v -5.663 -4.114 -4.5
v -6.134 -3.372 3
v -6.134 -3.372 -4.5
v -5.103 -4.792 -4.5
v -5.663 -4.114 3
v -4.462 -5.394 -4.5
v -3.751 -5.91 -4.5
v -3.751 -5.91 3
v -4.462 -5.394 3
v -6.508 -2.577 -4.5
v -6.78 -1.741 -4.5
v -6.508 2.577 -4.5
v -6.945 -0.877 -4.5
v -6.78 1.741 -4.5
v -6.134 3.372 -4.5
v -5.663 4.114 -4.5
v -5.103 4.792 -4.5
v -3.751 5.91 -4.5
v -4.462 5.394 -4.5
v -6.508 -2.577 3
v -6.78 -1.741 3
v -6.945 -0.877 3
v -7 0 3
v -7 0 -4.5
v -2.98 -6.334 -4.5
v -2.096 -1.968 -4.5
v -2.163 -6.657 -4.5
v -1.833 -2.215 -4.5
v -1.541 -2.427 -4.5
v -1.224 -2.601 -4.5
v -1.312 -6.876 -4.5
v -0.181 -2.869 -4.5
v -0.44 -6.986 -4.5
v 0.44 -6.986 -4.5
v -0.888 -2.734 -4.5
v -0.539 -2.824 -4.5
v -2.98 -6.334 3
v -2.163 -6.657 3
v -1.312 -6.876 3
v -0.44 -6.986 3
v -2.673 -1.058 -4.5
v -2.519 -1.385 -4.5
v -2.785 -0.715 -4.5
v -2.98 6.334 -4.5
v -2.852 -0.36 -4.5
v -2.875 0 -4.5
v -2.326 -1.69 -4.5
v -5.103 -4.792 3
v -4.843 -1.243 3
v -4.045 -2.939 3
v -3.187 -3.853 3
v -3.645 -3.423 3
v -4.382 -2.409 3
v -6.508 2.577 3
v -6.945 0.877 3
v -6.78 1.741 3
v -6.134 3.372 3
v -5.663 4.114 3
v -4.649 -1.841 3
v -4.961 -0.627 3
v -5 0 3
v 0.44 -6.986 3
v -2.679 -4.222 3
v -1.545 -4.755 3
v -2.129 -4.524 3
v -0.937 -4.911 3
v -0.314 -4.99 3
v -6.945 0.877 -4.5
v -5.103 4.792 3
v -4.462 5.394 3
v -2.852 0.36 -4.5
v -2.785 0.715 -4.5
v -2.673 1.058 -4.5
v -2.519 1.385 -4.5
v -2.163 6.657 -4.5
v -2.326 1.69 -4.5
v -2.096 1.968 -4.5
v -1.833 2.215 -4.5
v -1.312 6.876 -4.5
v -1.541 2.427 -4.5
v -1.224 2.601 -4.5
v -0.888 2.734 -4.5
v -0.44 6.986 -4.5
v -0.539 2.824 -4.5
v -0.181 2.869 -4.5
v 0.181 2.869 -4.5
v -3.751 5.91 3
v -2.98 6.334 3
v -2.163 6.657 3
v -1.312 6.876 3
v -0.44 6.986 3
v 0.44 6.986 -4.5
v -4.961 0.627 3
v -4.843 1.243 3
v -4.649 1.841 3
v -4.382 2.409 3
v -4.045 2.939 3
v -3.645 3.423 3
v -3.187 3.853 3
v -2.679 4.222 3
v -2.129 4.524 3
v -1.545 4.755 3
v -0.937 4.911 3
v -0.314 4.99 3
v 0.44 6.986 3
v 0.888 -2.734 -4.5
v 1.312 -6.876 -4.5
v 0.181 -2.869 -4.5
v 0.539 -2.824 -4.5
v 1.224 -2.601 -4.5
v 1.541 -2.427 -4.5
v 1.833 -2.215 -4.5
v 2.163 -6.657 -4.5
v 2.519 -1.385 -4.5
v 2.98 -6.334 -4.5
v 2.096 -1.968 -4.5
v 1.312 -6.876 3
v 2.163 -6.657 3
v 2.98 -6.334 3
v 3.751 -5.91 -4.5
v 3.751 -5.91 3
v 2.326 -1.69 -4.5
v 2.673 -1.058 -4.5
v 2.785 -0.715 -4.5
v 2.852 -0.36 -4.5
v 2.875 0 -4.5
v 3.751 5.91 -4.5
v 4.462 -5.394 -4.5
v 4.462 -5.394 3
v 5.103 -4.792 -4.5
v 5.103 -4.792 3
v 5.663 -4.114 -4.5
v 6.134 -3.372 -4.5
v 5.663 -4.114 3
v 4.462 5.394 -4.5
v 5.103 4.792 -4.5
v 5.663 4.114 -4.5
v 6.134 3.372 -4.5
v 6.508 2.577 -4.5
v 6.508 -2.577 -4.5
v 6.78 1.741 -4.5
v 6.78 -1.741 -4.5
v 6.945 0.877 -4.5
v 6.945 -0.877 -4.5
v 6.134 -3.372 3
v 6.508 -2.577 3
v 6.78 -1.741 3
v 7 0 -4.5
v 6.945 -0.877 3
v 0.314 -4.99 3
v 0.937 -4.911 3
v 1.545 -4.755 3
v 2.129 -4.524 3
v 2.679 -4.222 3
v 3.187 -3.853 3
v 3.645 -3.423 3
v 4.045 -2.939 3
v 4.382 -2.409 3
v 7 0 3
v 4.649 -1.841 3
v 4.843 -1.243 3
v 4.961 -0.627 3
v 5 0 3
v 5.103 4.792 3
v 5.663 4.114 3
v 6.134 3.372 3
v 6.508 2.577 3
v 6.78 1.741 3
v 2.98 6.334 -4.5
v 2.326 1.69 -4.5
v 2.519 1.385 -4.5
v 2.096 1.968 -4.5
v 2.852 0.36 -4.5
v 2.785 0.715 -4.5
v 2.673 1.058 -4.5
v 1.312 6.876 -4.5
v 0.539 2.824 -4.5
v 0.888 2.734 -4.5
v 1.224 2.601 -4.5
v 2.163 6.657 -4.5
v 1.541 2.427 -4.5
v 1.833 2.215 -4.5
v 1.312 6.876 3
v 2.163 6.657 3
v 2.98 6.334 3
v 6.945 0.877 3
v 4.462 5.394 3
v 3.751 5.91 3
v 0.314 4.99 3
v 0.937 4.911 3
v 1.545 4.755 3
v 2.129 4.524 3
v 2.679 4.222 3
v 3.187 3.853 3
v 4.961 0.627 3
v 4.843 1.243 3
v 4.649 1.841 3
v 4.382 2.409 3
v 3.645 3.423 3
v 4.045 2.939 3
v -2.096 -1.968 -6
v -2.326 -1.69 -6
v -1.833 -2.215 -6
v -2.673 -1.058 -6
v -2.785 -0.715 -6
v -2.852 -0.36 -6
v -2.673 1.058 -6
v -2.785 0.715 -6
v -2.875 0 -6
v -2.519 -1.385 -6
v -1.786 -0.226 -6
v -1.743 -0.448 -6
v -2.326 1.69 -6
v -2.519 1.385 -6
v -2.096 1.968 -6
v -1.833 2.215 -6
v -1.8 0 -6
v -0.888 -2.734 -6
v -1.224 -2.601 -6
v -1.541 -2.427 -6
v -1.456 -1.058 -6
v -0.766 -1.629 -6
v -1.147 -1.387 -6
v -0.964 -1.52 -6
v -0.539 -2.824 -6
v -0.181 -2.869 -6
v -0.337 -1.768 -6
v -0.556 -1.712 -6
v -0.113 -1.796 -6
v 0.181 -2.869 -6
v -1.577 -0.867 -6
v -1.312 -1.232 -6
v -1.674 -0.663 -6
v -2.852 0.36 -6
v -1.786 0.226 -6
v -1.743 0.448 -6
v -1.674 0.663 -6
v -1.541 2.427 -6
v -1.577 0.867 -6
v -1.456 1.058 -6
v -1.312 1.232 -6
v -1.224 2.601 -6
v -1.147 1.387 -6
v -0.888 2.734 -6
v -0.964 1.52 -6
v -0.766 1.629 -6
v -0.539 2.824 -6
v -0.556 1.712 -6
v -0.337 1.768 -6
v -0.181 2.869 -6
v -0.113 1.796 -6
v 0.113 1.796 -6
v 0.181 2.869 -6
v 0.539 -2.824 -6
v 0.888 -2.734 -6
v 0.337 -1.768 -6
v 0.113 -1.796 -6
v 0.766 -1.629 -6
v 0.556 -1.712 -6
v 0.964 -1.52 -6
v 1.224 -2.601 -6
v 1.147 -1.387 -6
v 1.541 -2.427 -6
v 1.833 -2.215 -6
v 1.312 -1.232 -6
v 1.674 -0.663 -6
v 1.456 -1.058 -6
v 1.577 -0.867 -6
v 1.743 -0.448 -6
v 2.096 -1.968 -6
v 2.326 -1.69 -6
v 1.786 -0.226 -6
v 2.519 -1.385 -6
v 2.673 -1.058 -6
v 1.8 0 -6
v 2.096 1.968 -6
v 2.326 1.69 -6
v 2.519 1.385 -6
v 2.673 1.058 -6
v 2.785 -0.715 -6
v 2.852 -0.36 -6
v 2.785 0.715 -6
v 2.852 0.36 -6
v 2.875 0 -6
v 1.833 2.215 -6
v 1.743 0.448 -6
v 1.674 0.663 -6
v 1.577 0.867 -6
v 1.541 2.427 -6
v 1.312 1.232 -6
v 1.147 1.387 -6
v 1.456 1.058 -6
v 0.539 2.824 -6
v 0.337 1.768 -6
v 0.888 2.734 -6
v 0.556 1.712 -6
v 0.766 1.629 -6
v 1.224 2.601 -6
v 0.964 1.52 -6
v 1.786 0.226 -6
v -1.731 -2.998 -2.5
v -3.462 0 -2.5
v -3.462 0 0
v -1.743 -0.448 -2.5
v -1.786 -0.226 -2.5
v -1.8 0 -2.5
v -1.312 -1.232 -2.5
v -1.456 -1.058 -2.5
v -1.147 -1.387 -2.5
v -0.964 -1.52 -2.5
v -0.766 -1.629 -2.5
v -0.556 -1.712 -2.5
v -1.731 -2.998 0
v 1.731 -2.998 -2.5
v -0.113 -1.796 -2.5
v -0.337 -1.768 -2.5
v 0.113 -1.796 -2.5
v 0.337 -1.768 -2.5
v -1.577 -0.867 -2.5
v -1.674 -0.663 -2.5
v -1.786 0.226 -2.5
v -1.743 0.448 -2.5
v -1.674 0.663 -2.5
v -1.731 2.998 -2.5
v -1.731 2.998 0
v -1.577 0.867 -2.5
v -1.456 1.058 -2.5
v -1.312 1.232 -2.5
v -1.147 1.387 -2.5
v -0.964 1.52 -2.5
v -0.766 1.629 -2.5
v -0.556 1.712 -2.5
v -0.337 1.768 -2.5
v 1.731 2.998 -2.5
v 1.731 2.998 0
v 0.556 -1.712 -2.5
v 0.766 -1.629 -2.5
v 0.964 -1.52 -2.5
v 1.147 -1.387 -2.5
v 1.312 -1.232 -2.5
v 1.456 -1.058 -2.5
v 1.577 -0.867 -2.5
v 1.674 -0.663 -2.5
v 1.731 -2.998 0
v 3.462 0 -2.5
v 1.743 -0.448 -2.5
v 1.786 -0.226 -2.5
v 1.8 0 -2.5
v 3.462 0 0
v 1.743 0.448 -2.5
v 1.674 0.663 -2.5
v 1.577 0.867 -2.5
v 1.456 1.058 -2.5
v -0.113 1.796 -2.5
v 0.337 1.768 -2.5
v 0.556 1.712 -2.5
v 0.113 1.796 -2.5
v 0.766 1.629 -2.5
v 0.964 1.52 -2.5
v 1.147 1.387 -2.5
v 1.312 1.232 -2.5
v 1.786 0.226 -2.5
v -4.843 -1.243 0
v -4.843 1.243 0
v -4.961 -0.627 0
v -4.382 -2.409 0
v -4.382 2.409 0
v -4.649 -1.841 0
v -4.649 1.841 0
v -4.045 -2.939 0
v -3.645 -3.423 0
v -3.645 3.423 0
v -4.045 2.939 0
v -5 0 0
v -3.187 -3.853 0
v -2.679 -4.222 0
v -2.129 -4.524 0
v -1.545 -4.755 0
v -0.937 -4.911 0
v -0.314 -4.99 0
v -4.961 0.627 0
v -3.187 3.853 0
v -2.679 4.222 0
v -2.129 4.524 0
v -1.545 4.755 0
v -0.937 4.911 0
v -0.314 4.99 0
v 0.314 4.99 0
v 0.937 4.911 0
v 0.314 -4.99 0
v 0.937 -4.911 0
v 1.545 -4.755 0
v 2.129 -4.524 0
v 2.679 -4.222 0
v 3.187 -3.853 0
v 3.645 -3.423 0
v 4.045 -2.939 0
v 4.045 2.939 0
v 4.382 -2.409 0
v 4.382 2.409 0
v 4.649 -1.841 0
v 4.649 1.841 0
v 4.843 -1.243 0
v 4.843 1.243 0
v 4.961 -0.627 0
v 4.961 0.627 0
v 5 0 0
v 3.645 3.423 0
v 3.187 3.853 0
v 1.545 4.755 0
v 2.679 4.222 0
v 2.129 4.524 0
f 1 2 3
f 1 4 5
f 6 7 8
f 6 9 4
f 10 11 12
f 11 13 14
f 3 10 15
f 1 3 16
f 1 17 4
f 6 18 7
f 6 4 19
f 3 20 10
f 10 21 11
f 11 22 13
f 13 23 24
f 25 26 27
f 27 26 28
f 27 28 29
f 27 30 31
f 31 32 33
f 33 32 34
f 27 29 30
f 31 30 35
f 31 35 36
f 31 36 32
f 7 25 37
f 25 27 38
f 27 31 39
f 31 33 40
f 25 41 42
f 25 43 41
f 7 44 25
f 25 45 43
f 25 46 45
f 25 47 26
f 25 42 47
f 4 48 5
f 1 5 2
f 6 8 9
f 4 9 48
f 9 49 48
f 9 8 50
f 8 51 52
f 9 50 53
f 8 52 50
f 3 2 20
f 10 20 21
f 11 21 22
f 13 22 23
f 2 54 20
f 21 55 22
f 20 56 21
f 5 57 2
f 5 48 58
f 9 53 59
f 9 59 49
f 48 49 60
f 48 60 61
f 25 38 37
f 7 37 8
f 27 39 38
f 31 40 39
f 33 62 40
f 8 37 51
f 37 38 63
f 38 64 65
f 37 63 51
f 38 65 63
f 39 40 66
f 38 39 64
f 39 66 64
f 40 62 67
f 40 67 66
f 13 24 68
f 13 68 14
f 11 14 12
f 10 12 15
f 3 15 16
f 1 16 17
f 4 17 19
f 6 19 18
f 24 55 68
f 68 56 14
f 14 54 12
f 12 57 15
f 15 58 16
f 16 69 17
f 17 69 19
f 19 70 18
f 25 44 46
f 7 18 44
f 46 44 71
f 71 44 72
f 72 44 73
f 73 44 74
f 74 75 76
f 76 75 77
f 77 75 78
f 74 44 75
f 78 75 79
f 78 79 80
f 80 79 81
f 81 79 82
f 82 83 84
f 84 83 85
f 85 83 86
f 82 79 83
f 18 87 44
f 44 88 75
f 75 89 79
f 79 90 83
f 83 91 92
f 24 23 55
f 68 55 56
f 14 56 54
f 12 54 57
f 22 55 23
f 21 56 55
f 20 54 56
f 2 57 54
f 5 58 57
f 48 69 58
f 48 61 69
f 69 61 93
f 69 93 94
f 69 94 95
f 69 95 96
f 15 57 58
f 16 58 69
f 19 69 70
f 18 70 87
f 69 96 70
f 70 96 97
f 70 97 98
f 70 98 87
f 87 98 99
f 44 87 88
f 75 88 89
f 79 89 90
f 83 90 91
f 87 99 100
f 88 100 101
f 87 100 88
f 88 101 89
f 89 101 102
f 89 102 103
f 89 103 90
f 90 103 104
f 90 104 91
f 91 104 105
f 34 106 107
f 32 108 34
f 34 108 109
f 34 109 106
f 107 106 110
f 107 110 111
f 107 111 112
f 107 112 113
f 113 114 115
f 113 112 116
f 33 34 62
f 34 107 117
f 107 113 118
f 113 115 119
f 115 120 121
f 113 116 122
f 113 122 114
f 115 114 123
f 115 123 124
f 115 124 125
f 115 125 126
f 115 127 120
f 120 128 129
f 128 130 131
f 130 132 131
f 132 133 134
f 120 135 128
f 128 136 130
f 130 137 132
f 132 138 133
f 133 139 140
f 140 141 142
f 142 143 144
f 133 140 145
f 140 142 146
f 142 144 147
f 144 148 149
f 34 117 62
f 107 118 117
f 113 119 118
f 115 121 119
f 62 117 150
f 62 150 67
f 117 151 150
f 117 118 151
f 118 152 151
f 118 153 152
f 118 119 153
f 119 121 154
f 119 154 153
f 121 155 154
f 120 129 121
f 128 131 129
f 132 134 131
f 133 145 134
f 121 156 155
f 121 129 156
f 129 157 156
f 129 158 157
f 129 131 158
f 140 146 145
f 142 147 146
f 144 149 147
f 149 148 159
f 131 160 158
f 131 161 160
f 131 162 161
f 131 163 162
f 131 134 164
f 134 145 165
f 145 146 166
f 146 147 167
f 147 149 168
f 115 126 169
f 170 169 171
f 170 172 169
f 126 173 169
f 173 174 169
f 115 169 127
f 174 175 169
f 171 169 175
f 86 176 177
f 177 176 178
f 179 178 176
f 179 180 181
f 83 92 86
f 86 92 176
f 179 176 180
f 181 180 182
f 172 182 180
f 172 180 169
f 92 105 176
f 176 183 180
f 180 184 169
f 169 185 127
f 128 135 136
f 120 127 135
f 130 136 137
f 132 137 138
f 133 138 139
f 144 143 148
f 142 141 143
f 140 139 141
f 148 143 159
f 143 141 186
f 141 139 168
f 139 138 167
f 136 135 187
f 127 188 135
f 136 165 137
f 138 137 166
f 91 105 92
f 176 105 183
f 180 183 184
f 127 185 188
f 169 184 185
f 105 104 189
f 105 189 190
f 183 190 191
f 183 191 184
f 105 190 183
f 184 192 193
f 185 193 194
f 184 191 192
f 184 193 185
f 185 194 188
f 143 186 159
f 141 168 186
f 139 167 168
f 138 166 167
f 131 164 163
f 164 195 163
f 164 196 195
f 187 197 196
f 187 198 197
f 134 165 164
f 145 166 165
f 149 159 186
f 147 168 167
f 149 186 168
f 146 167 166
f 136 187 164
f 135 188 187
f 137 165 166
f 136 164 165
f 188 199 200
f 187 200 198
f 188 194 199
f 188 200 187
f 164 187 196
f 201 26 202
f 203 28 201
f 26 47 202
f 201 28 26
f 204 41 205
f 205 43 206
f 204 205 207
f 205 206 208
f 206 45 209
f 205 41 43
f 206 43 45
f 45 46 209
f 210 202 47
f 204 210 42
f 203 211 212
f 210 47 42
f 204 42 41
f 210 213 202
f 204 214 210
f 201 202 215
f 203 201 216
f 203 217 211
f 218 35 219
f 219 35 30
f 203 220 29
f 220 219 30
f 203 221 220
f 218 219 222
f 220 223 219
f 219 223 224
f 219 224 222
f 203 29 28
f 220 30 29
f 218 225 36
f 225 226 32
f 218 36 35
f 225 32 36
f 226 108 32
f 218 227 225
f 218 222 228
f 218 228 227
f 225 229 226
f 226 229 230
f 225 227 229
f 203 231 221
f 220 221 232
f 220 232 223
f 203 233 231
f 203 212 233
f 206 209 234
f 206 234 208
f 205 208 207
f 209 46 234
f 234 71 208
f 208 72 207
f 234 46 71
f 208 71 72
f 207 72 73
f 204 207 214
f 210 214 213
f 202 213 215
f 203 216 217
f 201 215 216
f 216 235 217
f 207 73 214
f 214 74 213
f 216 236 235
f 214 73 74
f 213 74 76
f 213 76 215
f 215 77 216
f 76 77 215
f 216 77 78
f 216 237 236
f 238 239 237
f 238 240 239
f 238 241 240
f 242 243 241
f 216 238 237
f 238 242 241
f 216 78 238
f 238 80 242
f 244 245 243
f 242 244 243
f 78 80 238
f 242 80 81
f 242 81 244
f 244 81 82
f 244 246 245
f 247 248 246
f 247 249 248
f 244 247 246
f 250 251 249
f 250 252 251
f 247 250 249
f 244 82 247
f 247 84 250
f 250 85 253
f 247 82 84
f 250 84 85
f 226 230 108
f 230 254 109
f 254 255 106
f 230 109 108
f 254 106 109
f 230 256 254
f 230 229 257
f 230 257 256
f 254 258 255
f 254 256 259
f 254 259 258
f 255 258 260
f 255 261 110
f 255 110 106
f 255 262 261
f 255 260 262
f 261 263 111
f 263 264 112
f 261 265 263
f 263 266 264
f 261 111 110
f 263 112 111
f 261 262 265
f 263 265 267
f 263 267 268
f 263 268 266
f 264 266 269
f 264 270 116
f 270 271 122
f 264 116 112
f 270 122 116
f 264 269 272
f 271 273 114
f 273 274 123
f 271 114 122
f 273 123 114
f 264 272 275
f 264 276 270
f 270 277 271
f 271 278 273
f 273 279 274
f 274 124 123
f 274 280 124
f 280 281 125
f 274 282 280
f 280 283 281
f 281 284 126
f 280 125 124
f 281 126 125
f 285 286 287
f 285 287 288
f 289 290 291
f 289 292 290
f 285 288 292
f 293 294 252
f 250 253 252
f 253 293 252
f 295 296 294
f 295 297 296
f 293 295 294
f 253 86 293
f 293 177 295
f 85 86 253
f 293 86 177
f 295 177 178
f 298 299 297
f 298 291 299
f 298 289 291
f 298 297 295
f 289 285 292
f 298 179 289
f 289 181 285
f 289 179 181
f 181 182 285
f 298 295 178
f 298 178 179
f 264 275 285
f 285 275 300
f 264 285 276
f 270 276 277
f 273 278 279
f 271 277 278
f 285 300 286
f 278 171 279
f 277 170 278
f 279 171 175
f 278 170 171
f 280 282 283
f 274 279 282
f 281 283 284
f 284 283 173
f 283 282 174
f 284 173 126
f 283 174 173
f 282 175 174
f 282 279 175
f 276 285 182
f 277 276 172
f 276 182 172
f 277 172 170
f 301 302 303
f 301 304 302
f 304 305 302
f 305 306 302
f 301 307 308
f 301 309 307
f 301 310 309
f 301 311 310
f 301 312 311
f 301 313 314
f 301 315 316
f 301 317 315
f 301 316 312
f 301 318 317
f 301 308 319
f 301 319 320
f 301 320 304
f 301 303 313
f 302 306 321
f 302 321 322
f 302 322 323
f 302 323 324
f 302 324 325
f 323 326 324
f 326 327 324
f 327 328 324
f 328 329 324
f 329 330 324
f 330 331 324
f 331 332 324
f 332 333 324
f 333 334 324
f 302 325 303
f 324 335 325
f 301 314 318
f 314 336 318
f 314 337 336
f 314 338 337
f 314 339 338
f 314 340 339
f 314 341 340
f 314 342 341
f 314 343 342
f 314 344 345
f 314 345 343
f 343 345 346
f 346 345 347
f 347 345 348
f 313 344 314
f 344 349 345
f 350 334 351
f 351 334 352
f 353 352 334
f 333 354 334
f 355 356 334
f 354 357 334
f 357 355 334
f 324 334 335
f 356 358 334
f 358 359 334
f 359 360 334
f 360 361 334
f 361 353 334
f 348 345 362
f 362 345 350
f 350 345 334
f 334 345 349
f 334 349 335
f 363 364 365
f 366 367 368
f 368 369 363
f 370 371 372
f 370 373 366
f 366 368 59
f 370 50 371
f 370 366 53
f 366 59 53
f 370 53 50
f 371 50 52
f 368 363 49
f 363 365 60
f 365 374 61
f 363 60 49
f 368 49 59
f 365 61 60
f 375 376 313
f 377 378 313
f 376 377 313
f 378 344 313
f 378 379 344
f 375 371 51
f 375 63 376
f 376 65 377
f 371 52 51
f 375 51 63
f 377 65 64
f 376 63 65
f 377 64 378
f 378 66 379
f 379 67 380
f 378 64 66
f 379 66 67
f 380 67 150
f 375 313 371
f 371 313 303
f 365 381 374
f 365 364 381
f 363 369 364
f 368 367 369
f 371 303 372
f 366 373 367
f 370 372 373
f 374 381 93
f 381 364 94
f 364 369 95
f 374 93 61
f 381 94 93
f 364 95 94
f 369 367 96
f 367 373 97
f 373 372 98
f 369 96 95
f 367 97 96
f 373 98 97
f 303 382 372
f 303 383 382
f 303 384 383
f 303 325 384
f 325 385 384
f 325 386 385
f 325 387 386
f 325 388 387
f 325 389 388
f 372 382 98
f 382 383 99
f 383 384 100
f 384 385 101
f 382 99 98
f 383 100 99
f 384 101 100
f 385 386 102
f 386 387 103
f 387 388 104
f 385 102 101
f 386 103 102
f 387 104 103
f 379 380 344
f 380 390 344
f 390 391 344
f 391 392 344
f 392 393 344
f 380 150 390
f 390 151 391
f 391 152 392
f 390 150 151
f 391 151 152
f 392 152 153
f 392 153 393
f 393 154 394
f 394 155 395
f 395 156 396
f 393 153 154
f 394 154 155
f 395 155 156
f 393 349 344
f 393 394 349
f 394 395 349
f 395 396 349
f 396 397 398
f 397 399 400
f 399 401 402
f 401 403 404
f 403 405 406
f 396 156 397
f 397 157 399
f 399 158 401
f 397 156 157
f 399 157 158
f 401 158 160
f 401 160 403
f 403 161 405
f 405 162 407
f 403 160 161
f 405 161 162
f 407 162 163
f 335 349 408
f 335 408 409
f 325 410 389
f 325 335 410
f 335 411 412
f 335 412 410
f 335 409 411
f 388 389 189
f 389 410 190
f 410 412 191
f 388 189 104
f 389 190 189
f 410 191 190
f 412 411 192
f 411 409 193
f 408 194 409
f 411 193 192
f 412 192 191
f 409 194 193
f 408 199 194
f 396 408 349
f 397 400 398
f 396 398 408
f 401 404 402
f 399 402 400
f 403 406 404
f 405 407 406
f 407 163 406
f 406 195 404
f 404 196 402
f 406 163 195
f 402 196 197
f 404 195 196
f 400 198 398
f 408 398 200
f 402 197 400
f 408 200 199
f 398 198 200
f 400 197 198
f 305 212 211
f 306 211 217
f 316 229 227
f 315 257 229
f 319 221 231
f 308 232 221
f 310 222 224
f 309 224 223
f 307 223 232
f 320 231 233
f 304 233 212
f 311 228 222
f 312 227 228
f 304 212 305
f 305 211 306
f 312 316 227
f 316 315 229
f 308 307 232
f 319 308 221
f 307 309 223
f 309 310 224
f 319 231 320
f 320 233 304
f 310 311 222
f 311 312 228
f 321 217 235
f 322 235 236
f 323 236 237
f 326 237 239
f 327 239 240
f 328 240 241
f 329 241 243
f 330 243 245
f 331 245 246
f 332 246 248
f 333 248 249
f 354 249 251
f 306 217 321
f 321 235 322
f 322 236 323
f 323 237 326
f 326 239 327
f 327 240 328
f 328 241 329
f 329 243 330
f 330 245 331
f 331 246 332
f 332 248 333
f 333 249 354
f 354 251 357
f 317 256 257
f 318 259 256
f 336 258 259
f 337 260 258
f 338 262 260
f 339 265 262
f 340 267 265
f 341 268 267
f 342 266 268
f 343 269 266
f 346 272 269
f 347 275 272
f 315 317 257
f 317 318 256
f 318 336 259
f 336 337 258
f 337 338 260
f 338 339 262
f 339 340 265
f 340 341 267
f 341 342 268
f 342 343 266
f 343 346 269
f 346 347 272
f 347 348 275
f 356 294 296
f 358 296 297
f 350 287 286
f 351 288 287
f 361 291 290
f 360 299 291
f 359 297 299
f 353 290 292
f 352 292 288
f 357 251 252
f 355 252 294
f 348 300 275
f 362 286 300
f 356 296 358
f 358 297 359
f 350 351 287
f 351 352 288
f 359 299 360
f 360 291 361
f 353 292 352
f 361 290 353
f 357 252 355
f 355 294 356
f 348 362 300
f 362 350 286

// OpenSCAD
$fn = 50;


difference() {
	union() {
		translate(v = [0, 0, -4.5000000000]) {
			cylinder(h = 7.5000000000, r = 7.0000000000);
		}
		#translate(v = [0, 0, -6.0000000000]) {
			cylinder(h = 6, r = 2.8750000000);
		}
	}
	union() {
		translate(v = [0, 0, 0]) {
			rotate(a = [0, 0, 0]) {
				difference() {
					union() {
						translate(v = [0, 0, -2.5000000000]) {
							linear_extrude(height = 2.5000000000) {
								polygon(points = [[3.4620000000, 0.0000000000], [1.7310000000, 2.9981799479], [-1.7310000000, 2.9981799479], [-3.4620000000, 0.0000000000], [-1.7310000000, -2.9981799479], [1.7310000000, -2.9981799479]]);
							}
						}
					}
					union();
				}
			}
		}
		#cylinder(h = 3, r = 5.0000000000);
		#translate(v = [0, 0, -100.0000000000]) {
			cylinder(h = 200, r = 1.8000000000);
		}
	}
}
